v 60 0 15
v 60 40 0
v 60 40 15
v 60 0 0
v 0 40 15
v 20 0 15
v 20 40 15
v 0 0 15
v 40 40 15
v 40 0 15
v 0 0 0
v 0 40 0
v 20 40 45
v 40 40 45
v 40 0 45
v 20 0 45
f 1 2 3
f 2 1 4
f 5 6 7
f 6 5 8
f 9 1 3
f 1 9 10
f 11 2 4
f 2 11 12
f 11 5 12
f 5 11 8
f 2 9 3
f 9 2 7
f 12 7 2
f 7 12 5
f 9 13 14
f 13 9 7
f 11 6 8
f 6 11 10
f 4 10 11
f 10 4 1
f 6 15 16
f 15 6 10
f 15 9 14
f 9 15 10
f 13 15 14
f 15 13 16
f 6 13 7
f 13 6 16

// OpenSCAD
// 倒 T 形塊（tee）— 由 ortho_lib_work/objects.py 產生，請改 objects.py 後重建
// 底座 60×40×15；中間立起寬 20（x 20～40）、全深、高 45 的立板。
union() {
    translate([0,0,0]) cube([60,40,15]);
    translate([20,0,0]) cube([20,40,45]);
}
